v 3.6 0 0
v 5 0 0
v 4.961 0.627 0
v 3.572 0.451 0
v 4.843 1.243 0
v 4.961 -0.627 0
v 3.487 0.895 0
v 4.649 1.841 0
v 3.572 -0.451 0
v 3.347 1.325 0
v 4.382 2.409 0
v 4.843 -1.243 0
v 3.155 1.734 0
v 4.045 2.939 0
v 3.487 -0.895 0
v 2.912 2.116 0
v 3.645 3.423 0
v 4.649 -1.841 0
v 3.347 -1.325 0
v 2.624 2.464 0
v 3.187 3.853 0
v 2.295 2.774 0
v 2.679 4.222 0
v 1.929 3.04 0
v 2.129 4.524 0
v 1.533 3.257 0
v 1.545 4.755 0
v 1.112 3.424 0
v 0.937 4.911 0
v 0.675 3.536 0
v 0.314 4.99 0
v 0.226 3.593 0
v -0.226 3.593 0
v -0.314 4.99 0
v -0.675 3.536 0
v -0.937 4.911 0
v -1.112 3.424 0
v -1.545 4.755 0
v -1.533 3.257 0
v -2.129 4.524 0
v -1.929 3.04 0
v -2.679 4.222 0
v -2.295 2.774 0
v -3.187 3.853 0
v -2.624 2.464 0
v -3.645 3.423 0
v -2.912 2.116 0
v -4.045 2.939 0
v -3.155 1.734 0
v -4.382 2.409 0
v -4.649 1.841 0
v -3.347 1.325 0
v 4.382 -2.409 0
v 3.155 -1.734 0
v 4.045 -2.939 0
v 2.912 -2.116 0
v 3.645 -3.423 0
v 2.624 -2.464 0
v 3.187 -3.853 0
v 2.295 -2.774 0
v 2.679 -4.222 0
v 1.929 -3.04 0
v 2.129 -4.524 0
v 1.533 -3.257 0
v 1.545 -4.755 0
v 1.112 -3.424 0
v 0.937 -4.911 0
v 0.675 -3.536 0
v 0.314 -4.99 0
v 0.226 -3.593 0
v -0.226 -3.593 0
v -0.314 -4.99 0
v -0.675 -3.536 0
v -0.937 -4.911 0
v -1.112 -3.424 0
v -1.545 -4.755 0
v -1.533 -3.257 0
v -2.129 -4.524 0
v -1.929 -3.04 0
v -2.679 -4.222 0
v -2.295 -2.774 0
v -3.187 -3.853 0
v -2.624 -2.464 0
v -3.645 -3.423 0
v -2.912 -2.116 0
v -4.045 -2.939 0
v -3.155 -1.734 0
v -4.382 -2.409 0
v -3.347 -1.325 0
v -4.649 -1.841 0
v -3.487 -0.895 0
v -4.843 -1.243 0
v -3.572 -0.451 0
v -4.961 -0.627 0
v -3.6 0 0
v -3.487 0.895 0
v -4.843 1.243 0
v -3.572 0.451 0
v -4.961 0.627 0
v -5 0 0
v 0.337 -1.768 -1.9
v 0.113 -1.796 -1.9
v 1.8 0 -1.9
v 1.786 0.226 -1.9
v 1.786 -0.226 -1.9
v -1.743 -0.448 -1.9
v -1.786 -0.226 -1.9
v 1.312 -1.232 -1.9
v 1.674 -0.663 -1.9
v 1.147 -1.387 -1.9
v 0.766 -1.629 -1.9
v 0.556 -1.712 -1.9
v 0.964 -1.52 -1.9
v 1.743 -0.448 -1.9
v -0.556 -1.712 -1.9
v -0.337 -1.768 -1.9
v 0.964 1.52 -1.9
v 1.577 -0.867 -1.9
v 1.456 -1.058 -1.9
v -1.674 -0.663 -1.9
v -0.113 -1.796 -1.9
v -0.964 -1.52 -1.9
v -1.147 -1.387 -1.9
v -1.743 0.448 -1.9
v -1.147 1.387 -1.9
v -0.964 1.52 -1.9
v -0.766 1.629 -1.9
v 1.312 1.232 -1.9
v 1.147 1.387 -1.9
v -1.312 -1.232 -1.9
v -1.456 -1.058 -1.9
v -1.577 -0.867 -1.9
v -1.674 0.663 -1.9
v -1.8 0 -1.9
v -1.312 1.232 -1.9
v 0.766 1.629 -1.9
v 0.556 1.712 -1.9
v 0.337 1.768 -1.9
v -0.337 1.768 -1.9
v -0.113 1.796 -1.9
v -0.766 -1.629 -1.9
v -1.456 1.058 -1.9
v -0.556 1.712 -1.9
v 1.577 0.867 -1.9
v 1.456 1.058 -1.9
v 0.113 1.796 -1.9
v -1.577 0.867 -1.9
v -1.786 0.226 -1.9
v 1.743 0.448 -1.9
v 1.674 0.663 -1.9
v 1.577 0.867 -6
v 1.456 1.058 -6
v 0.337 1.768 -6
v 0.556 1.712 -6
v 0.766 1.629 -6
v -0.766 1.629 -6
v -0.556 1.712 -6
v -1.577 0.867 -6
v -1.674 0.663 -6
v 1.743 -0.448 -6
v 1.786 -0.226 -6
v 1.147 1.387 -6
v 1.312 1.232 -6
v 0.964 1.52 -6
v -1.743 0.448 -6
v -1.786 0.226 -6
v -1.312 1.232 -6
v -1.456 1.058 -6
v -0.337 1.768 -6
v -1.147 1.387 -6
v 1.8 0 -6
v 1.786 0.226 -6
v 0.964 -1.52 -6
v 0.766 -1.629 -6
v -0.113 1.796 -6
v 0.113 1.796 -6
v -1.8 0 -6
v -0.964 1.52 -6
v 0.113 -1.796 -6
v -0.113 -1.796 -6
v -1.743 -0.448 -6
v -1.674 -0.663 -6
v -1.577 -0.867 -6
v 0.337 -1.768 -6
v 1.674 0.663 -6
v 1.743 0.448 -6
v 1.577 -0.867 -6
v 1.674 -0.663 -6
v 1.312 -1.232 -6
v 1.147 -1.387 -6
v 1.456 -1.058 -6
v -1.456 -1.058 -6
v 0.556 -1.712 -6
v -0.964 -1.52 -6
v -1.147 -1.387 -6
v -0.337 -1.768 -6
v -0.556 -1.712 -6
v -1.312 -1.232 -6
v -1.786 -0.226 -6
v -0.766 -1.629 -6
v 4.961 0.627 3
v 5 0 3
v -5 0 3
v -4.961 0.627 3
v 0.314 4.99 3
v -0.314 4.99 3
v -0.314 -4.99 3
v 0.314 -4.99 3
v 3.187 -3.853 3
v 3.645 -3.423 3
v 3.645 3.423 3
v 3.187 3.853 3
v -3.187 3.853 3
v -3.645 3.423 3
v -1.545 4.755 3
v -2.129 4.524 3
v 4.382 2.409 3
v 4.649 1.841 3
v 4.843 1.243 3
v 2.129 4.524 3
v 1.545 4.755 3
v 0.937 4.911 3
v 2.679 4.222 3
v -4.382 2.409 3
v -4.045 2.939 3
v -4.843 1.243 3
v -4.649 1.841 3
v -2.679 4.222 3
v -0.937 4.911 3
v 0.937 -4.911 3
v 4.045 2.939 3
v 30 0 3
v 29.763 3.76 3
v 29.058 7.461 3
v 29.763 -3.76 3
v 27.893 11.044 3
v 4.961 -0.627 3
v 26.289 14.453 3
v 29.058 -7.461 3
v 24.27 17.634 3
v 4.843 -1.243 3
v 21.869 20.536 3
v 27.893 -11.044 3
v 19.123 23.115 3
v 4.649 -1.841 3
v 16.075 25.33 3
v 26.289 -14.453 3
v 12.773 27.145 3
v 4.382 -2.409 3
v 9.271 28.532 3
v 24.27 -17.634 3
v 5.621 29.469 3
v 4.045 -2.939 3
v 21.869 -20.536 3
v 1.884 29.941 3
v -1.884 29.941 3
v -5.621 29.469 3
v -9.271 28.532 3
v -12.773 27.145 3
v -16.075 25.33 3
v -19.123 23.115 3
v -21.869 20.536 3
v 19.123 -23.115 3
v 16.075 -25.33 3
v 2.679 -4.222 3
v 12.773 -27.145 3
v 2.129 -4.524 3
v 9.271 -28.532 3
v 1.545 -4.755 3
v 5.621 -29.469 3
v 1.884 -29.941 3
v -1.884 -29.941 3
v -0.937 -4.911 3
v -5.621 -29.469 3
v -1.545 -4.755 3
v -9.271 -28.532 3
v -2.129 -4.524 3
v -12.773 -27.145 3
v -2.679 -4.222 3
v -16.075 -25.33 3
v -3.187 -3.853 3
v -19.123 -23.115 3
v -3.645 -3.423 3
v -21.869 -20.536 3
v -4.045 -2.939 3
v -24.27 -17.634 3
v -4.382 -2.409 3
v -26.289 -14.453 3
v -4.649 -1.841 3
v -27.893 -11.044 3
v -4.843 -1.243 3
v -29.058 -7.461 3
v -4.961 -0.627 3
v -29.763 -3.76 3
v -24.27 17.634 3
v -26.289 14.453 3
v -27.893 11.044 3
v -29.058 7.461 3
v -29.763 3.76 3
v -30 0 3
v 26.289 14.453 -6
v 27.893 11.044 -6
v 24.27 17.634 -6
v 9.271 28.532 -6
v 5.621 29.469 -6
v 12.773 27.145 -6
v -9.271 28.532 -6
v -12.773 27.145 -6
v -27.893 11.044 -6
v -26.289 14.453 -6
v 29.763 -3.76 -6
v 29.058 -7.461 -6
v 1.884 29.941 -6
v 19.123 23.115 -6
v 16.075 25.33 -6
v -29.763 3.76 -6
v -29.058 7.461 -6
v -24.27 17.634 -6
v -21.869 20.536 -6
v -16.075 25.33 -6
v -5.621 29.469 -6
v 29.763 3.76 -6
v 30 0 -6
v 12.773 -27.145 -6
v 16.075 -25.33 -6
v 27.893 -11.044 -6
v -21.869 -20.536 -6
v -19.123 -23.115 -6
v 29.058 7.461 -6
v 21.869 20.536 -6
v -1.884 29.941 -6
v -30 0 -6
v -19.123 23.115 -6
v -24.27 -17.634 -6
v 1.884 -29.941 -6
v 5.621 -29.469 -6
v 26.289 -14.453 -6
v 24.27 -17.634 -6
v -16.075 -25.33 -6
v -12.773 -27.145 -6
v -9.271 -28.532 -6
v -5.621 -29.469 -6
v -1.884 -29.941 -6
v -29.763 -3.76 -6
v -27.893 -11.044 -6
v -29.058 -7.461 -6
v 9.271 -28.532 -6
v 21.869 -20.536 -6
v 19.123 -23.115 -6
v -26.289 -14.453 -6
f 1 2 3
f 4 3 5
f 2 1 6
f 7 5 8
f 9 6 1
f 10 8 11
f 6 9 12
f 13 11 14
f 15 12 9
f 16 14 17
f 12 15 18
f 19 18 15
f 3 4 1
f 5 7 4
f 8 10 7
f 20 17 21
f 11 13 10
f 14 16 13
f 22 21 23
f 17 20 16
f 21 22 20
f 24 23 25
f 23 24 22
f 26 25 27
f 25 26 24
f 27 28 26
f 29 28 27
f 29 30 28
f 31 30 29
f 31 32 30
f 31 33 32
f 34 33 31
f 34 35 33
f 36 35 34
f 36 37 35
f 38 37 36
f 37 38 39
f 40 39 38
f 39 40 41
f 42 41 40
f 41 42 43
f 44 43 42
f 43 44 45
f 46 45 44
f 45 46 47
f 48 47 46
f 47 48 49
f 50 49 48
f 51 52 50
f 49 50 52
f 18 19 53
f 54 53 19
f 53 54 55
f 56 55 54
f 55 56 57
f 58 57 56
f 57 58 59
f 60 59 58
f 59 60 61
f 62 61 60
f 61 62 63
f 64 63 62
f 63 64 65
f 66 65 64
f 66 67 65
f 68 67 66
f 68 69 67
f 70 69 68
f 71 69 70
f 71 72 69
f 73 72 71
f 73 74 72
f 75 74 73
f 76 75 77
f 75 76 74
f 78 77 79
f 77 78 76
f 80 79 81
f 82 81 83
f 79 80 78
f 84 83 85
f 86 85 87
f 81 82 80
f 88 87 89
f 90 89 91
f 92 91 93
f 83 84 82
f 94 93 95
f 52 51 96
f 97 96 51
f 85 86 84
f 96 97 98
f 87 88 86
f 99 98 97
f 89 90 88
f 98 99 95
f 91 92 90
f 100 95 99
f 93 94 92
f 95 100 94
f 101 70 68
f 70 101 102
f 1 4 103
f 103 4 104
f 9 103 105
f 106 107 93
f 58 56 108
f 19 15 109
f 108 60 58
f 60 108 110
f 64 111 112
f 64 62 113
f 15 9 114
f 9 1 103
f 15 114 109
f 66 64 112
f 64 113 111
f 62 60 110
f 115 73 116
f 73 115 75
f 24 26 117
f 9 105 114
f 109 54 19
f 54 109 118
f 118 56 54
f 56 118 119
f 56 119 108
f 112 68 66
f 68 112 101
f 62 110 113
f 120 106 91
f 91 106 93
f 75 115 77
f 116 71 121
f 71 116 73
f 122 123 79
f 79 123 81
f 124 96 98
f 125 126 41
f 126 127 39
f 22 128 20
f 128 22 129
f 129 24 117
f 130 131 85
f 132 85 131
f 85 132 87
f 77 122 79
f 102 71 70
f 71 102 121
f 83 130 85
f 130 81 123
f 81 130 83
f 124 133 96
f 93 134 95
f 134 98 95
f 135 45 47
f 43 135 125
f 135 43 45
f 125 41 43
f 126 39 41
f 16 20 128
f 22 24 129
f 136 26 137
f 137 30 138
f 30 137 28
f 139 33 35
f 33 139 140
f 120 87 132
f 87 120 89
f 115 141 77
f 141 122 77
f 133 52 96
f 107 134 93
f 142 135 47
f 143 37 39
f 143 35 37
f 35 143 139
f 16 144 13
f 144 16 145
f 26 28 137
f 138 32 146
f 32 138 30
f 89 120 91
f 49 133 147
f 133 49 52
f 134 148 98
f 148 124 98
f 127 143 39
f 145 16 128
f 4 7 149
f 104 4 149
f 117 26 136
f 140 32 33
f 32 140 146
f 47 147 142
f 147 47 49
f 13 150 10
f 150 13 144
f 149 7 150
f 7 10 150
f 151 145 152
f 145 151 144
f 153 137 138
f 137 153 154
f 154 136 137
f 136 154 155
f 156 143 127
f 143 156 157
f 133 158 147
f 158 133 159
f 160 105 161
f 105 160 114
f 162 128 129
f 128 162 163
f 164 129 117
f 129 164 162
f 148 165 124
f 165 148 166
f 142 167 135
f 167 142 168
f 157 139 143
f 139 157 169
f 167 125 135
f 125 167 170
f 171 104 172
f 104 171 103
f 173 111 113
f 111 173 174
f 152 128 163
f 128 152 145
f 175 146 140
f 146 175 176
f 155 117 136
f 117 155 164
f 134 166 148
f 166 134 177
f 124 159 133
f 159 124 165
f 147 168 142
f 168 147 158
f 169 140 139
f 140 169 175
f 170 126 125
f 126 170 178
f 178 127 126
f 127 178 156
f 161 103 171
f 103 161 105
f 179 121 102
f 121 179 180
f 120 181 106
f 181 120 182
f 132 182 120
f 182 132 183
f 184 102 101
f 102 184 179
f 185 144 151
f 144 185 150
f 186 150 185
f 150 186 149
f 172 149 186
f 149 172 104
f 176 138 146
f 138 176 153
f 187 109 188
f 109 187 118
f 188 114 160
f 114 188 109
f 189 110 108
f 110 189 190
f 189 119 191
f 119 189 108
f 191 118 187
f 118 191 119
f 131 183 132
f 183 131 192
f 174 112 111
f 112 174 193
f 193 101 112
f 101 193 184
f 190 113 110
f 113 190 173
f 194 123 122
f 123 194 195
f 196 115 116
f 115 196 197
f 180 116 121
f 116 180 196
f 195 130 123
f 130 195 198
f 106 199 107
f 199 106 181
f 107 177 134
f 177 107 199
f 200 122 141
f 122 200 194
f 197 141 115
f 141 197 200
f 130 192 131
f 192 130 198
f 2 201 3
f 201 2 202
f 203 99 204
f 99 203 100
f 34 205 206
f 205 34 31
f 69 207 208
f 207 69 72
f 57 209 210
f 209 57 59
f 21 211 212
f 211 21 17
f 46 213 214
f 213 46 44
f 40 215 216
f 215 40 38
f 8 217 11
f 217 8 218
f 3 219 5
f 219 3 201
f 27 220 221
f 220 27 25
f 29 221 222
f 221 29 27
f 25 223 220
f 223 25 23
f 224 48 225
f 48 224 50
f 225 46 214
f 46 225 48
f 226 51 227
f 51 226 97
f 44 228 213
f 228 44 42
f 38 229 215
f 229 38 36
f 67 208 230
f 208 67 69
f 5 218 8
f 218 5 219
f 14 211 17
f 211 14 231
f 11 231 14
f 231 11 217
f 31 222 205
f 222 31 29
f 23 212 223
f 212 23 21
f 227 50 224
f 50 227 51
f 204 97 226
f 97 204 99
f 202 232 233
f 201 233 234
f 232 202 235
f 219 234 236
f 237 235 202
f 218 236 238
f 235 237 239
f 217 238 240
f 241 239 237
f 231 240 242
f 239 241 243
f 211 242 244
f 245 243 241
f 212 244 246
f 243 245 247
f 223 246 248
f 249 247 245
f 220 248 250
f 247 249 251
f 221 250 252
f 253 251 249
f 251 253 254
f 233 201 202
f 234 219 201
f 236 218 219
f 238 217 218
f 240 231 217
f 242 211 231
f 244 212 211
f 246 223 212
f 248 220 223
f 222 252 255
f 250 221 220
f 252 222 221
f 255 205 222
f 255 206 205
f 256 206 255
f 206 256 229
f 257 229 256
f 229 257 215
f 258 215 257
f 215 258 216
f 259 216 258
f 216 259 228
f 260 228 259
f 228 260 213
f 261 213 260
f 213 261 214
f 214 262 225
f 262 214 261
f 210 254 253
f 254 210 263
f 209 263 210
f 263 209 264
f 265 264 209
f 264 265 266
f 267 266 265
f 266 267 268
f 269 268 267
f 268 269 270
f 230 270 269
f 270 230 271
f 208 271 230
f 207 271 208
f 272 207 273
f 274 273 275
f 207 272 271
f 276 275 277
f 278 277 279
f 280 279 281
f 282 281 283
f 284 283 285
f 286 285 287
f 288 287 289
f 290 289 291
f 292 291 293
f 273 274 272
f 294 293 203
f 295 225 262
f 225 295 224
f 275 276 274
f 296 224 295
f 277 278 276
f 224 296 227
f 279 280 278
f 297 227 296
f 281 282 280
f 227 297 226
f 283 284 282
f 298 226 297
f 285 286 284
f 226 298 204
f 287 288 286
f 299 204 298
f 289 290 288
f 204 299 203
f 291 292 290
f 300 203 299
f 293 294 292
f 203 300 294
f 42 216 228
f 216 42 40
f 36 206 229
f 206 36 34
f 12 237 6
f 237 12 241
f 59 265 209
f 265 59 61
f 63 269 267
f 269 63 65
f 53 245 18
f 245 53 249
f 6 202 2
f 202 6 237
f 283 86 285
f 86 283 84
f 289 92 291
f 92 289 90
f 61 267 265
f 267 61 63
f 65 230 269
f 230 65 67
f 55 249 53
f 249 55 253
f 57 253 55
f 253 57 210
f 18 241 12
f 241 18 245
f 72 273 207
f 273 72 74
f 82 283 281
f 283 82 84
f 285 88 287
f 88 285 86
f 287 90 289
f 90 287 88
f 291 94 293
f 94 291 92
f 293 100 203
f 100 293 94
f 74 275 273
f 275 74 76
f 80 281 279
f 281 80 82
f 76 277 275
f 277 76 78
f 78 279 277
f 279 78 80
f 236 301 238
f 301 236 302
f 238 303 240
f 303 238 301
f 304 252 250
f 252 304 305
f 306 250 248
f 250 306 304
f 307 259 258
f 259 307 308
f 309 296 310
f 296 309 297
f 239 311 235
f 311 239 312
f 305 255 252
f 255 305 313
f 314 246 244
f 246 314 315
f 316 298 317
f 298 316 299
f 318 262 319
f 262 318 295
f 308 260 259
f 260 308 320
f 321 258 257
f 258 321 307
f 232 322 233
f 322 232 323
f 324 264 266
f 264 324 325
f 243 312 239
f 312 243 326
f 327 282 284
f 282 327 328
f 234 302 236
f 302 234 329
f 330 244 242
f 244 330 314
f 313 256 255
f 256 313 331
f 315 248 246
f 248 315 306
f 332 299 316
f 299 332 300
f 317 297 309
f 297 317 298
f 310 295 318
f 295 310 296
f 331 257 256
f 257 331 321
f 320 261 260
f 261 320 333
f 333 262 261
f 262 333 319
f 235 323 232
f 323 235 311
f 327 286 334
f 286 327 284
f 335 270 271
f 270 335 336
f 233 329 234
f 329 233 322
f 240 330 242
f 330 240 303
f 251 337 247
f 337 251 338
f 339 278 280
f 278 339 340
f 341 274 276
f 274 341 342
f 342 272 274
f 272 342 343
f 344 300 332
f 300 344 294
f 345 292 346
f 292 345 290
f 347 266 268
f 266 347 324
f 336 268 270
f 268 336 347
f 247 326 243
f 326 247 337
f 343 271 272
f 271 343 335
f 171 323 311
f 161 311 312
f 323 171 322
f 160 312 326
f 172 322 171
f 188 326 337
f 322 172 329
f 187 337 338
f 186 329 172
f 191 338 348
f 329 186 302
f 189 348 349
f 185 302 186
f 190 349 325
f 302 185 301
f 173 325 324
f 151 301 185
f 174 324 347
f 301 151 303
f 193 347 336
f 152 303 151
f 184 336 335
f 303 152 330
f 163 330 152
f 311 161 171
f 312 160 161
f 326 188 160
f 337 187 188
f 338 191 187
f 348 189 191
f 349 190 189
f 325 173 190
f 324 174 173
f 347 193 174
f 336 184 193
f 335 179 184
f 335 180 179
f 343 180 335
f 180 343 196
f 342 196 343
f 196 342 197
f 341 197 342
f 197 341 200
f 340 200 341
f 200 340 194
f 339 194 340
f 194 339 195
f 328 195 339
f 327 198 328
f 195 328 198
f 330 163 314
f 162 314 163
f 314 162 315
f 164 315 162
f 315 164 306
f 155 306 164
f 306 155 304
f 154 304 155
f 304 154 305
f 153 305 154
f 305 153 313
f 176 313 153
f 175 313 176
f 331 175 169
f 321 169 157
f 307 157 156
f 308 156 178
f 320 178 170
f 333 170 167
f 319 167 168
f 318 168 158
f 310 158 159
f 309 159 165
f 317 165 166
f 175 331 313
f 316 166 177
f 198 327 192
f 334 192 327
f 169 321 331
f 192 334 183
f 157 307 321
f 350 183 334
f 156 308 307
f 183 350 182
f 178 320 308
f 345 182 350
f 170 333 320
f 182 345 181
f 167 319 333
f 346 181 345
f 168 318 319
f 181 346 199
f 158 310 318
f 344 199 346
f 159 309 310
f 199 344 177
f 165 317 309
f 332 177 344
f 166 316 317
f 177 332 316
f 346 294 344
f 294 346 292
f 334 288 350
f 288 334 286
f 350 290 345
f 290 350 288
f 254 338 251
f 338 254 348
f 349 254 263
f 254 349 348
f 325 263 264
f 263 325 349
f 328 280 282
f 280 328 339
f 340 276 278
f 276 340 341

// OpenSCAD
$fn = 50;


difference() {
	union() {
		translate(v = [0, 0, -6.0000000000]) {
			cylinder(h = 9, r = 30.0000000000);
		}
	}
	union() {
		translate(v = [0, 0, 0]) {
			rotate(a = [0, 0, 0]) {
				difference() {
					union() {
						translate(v = [0, 0, -9.0000000000]) {
							cylinder(h = 9, r = 1.5000000000);
						}
						translate(v = [0, 0, -1.9000000000]) {
							cylinder(h = 1.9000000000, r1 = 1.8000000000, r2 = 3.6000000000);
						}
						translate(v = [0, 0, -9.0000000000]) {
							cylinder(h = 9, r = 1.8000000000);
						}
						translate(v = [0, 0, -9.0000000000]) {
							cylinder(h = 9, r = 1.5000000000);
						}
					}
					union();
				}
			}
		}
		#cylinder(h = 3, r = 5.0000000000);
	}
}
